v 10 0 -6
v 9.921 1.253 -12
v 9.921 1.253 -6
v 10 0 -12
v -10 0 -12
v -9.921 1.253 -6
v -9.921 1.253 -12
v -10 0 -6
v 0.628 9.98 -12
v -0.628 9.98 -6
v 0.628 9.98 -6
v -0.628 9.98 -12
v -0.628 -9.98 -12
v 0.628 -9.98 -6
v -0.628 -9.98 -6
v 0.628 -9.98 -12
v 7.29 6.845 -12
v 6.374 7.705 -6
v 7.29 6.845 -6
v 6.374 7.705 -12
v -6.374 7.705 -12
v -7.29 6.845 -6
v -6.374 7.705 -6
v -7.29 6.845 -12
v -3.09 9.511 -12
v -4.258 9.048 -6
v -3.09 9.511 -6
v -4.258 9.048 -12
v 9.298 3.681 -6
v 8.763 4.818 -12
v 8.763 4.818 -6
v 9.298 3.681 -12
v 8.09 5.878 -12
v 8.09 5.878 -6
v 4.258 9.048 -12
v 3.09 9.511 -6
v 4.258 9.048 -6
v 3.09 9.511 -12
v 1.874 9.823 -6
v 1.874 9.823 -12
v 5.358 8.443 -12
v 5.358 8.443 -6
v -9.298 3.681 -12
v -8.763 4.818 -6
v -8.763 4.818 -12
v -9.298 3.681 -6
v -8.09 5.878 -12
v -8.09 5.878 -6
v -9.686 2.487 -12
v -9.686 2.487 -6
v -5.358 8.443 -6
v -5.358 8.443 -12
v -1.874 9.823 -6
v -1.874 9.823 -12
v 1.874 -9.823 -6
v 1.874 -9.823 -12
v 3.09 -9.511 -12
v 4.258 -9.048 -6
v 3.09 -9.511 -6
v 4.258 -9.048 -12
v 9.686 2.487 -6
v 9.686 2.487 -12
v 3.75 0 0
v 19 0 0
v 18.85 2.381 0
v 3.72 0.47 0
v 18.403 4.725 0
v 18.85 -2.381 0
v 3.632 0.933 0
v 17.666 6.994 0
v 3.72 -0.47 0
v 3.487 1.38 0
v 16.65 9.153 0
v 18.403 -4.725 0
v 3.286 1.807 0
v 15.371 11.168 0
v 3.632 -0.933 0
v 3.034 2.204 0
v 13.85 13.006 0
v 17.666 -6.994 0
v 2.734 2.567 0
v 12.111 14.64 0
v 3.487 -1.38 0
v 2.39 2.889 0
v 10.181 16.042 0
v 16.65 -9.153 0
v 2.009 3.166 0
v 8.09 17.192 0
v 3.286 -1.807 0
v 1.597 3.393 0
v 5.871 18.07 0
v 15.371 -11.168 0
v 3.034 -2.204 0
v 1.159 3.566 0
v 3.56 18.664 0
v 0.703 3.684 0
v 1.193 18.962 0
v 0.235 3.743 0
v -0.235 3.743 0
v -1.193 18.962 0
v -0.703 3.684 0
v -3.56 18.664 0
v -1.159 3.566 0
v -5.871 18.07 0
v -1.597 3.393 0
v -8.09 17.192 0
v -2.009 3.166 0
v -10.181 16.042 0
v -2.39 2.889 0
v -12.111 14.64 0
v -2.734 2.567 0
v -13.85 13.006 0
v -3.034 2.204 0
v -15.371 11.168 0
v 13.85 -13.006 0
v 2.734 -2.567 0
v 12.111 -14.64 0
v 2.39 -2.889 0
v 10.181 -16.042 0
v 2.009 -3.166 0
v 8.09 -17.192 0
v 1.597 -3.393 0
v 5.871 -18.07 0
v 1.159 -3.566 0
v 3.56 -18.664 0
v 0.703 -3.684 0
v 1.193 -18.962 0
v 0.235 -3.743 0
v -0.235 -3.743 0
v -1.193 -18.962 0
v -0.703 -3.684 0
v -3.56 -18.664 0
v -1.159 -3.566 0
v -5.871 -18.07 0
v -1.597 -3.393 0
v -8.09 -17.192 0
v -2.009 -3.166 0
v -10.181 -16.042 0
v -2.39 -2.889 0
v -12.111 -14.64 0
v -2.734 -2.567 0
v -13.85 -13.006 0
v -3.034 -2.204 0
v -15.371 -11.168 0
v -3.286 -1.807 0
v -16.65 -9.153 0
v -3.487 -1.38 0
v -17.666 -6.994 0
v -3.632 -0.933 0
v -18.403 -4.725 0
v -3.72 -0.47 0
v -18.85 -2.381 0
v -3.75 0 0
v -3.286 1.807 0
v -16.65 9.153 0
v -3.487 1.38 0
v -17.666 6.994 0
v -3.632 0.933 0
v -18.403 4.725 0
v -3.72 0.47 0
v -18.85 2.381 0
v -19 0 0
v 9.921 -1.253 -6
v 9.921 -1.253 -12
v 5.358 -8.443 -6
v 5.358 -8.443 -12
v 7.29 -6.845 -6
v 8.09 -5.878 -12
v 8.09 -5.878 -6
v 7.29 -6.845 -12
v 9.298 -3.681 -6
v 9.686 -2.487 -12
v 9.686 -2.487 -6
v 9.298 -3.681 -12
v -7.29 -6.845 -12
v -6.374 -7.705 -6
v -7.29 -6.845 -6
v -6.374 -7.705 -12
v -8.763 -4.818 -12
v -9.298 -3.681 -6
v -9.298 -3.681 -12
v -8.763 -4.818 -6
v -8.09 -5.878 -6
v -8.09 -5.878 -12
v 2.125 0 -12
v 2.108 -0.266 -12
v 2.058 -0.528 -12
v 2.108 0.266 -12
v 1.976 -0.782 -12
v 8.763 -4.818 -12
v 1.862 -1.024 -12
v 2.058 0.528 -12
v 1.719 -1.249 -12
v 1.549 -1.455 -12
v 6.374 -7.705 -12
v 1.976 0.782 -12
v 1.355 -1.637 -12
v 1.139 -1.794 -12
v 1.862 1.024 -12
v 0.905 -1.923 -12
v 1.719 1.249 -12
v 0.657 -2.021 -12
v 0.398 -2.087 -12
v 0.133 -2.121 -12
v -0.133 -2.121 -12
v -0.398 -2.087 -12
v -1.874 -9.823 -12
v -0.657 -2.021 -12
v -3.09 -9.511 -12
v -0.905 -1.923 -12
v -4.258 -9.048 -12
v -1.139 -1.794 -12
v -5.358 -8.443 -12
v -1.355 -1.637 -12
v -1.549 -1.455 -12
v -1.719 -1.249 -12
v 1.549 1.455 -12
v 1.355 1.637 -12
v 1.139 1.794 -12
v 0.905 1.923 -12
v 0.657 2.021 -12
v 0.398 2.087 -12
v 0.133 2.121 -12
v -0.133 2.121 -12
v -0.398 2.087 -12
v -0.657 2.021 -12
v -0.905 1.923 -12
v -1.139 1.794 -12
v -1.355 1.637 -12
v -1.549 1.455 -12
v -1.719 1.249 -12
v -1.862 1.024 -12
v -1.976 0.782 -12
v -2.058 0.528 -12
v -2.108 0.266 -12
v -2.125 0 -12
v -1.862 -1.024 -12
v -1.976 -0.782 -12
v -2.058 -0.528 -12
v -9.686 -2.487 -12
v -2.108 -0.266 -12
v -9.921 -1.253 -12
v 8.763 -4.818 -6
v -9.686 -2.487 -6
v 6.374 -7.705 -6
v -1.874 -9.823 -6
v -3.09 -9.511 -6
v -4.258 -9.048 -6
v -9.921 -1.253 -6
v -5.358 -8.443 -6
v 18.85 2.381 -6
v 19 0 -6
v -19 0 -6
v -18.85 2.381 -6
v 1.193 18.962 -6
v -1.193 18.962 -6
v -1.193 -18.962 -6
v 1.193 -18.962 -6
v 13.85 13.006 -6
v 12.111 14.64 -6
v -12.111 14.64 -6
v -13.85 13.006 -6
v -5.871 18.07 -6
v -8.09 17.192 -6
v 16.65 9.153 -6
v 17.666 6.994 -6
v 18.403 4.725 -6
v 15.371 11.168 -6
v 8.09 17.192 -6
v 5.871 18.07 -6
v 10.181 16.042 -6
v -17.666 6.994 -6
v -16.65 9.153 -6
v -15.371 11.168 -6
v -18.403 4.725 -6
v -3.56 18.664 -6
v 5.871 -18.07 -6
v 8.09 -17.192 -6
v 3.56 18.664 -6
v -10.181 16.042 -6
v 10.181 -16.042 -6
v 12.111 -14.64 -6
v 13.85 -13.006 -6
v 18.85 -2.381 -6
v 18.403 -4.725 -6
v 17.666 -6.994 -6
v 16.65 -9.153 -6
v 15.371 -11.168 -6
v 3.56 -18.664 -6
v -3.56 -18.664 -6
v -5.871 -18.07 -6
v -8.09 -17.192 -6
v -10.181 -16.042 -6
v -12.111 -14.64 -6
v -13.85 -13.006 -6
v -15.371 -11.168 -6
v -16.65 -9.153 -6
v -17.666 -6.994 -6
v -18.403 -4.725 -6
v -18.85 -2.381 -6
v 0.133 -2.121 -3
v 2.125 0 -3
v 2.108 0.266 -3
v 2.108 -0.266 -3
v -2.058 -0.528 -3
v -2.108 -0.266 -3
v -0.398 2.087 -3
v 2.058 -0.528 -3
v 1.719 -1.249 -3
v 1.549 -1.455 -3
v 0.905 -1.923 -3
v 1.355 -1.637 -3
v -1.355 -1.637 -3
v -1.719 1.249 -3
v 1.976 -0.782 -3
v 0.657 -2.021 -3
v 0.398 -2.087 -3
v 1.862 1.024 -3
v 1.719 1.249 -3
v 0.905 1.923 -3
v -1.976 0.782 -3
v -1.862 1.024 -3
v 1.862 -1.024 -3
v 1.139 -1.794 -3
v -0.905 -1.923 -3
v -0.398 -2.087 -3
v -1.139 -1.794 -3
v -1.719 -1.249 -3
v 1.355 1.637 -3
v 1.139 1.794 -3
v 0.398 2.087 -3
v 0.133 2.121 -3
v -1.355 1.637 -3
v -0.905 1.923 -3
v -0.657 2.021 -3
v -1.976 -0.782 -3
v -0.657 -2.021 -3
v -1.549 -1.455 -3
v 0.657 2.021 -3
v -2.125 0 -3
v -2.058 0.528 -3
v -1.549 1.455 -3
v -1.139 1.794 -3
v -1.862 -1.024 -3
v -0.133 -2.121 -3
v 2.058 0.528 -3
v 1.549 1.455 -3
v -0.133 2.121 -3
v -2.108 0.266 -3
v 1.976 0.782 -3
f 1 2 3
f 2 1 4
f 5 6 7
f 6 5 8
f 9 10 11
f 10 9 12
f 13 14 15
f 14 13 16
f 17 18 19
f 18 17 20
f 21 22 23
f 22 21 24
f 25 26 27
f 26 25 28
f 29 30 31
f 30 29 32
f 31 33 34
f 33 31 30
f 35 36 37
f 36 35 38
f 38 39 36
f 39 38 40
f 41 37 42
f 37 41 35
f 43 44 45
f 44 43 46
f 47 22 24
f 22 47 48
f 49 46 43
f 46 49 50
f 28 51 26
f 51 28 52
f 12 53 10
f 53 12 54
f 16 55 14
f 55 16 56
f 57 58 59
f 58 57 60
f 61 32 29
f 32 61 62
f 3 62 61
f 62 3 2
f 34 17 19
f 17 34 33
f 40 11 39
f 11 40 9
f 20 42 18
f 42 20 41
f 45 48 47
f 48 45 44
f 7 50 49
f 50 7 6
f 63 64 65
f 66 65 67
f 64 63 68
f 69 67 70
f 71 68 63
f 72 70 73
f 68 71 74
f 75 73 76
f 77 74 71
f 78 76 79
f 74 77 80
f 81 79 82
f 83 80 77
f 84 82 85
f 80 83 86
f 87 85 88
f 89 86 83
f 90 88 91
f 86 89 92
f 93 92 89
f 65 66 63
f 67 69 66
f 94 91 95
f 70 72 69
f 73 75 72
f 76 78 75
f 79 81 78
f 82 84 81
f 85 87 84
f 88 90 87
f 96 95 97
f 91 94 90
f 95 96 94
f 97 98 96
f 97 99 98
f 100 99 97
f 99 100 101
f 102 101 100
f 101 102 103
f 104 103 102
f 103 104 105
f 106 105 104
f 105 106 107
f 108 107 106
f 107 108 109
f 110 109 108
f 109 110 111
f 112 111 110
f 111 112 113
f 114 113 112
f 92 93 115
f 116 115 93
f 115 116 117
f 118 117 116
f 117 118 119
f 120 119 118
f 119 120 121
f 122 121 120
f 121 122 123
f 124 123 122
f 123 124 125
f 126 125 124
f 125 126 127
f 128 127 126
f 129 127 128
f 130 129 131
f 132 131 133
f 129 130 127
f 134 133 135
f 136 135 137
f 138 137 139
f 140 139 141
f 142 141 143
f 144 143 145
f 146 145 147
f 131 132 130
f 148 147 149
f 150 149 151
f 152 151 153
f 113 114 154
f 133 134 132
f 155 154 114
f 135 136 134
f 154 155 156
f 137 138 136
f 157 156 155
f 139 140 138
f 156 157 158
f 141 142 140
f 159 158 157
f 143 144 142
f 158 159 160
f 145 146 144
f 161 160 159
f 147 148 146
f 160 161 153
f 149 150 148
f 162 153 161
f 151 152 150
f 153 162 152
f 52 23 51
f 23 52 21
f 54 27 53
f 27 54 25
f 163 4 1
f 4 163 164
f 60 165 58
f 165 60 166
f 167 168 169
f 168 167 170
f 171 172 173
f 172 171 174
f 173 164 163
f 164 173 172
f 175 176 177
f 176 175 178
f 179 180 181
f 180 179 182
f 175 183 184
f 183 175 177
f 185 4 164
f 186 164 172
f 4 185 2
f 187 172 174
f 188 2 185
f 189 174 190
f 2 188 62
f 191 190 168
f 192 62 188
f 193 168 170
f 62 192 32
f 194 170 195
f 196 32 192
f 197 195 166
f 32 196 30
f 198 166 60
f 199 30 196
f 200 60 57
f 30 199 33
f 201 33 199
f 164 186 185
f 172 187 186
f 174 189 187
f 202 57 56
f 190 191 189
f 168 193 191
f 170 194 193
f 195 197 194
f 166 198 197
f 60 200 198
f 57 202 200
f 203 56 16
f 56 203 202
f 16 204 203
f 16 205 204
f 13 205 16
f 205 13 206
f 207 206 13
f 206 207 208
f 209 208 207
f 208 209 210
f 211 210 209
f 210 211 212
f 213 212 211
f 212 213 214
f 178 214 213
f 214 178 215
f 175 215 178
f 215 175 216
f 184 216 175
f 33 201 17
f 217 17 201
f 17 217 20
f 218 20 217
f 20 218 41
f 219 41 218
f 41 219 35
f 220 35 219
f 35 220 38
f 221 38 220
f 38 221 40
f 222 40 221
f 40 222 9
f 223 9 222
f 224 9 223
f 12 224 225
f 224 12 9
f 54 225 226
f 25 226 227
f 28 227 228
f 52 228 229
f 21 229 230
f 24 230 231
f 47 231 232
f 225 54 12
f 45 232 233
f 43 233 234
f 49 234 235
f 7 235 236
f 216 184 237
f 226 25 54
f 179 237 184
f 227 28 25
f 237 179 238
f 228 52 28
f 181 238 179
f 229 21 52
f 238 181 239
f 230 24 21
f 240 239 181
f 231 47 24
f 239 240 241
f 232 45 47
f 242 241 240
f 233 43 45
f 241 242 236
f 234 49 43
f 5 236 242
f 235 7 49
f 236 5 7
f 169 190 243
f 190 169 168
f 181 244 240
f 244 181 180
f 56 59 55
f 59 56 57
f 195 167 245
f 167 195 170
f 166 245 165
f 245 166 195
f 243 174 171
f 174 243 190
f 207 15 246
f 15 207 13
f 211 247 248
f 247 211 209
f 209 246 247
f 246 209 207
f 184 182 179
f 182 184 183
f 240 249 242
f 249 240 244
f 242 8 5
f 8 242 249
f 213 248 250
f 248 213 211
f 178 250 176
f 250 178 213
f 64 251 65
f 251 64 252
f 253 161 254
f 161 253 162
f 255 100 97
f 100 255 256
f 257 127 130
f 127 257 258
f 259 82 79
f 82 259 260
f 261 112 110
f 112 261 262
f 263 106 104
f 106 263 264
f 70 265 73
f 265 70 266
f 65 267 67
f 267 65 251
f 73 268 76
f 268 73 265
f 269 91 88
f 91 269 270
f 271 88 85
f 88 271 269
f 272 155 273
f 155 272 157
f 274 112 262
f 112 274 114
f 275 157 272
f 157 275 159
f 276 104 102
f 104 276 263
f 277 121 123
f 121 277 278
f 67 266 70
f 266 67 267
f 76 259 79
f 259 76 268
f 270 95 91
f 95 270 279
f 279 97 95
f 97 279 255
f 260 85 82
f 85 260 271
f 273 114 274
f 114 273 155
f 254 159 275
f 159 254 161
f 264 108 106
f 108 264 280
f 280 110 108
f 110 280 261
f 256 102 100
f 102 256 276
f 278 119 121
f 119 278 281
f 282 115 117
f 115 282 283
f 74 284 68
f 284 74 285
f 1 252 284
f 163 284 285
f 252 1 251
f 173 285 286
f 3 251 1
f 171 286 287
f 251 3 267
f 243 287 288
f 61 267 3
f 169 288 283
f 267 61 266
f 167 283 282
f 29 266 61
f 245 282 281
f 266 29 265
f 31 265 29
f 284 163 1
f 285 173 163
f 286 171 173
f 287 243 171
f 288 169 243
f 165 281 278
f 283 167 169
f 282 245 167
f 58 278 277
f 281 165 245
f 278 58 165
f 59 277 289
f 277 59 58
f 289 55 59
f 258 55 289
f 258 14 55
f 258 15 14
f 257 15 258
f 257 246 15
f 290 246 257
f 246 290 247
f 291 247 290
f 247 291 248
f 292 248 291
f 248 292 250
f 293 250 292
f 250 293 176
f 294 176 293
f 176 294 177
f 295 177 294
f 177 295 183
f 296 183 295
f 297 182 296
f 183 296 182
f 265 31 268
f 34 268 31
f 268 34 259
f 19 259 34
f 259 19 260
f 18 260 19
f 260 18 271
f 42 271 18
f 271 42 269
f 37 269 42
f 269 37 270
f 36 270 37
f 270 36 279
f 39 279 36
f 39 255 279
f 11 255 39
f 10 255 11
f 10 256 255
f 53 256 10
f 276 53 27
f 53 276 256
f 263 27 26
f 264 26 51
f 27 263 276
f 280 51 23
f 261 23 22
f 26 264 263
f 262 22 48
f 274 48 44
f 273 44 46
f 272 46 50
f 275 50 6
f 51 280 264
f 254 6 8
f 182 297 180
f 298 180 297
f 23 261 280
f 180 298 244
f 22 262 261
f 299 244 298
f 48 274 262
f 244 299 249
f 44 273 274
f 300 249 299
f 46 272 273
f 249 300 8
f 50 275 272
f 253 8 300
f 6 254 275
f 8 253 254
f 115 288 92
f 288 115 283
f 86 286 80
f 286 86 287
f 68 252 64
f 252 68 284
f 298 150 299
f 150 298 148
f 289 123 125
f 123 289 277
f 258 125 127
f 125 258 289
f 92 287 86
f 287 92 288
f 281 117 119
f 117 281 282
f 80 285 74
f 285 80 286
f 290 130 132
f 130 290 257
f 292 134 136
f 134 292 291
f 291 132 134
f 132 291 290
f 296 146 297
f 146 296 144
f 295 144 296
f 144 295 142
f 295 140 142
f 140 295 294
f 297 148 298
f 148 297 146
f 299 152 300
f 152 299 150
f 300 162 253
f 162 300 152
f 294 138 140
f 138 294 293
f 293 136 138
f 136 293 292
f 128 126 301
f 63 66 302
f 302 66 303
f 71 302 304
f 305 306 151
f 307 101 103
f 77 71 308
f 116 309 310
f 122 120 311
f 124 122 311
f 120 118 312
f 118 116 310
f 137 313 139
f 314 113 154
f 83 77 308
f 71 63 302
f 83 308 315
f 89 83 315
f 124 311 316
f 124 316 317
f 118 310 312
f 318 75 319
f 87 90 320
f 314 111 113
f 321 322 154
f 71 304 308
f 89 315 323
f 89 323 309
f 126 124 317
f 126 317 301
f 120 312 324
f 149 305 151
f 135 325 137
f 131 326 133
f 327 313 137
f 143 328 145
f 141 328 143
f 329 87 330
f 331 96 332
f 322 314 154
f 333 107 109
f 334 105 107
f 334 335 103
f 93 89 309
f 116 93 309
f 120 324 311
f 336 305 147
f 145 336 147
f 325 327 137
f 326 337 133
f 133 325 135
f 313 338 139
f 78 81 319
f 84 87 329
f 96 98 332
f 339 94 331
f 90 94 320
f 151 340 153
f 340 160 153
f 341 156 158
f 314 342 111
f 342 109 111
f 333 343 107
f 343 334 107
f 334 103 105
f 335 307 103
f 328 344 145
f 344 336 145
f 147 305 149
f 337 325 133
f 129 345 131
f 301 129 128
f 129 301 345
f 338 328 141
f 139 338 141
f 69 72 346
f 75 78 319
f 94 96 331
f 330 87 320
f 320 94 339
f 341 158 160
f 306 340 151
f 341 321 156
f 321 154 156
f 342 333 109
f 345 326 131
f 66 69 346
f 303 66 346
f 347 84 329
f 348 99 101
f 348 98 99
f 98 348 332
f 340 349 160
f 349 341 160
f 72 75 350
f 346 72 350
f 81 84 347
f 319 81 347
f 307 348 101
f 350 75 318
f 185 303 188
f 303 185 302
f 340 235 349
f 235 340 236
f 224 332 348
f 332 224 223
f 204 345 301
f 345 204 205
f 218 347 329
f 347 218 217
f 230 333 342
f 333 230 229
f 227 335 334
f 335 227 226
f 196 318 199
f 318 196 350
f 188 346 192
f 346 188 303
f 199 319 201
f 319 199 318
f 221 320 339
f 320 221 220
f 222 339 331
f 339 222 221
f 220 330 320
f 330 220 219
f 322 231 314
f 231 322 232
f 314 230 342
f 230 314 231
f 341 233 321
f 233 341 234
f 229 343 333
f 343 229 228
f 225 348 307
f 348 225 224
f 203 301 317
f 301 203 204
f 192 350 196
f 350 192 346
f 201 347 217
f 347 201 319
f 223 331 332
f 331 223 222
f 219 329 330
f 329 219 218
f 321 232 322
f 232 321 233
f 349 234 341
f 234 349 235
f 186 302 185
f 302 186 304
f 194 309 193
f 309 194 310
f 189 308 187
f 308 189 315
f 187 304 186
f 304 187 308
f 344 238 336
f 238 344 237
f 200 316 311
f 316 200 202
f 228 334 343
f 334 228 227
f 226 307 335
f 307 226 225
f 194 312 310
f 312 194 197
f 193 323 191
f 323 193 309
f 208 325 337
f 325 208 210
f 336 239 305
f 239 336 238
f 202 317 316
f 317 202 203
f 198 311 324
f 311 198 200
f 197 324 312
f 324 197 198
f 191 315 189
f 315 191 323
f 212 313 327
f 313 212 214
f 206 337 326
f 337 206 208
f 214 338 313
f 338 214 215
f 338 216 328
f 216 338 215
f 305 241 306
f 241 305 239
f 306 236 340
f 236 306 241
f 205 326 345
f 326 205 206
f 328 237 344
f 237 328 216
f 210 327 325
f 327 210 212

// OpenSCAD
$fn = 50;


difference() {
	union() {
		translate(v = [0, 0, -12.0000000000]) {
			cylinder(h = 12, r = 10.0000000000);
		}
		translate(v = [0, 0, -6.0000000000]) {
			cylinder(h = 6, r = 19.0000000000);
		}
	}
	union() {
		translate(v = [0, 0, 0]) {
			rotate(a = [0, 0, 0]) {
				difference() {
					union() {
						#translate(v = [0, 0, -12.0000000000]) {
							cylinder(h = 12, r = 2.0000000000);
						}
						#translate(v = [0, 0, -3]) {
							cylinder(h = 3, r = 10.0000000000, r1 = 2.1250000000, r2 = 3.7500000000);
						}
						#translate(v = [0, 0, -12.0000000000]) {
							cylinder(h = 12, r = 2.1250000000);
						}
						#translate(v = [0, 0, -12.0000000000]) {
							cylinder(h = 12, r = 2.0000000000);
						}
					}
					union();
				}
			}
		}
	}
}
